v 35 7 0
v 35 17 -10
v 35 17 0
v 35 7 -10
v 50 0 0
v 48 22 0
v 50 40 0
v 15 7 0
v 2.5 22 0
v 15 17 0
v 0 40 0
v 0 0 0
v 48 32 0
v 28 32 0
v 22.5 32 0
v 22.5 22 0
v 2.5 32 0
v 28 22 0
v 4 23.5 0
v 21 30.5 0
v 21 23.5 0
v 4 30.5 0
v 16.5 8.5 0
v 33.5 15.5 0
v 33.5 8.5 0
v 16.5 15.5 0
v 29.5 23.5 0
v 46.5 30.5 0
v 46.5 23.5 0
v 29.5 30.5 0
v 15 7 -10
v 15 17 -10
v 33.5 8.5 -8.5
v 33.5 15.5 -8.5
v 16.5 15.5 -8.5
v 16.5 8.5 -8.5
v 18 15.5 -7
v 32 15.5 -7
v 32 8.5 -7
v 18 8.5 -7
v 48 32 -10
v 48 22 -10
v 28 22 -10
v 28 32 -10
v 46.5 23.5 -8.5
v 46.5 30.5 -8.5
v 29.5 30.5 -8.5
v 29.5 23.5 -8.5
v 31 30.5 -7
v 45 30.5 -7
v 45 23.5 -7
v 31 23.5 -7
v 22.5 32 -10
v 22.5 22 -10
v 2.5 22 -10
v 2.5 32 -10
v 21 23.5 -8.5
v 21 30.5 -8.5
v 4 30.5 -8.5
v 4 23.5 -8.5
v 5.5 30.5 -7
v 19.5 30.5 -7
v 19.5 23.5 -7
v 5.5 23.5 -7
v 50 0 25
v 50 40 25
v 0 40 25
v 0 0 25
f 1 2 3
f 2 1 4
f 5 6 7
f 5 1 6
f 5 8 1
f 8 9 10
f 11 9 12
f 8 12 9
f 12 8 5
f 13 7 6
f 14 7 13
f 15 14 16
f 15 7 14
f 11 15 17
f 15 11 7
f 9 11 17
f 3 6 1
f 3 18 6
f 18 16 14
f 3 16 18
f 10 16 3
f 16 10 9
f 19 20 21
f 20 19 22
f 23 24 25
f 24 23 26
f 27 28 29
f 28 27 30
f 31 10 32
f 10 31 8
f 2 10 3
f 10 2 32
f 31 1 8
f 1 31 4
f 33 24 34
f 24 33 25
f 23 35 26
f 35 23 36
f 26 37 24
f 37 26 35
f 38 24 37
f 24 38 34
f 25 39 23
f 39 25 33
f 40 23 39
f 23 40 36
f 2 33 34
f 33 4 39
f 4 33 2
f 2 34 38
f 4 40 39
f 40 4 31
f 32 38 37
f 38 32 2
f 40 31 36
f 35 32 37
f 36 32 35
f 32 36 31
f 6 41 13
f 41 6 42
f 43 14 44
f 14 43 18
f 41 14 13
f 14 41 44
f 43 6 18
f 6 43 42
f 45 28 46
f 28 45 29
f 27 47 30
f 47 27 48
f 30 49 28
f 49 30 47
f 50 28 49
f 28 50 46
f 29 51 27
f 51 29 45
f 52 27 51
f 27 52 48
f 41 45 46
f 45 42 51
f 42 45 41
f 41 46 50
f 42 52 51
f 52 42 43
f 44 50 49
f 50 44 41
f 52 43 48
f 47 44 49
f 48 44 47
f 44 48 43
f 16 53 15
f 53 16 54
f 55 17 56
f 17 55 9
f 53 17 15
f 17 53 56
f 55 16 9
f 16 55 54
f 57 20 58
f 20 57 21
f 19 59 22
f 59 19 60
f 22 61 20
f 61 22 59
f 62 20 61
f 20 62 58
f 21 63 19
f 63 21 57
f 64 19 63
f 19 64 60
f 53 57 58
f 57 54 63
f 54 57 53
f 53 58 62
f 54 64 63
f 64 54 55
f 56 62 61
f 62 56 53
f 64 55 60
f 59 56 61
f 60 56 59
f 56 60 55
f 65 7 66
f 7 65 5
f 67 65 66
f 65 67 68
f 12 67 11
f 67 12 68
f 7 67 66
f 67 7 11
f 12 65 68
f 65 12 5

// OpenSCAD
// base
cube([50,40,25]);

// bricks
translate([(50/2)-(20/2),7,-10]){
    brick();
    
    translate([13,(40/2)-5,0]){
        brick();
    }
    translate([-25/2,(40/2)-5,0]){
        brick();
    }
}



module brick(){
    
    // OD 20x10x10
    
    difference(){
        cube([20,10,10]);
        translate([3/2,3/2,0]){
            cube([17,7,10]);
        }
        
        // sharpen the edge
        translate([10,0,0]){
            #polyhedron(
              points=[ [10,10,0],[10,-0,0],[-10,0,0],[-10,10,0], // the four points at base
                       [0,5,10]  ],                                 // the apex point 
              faces=[ [0,1,4],[1,2,4],[2,3,4],[3,0,4],              // each triangle side
                          [1,0,3],[2,1,3] ]                         // two triangles for square base
             );
        }
    }
}
